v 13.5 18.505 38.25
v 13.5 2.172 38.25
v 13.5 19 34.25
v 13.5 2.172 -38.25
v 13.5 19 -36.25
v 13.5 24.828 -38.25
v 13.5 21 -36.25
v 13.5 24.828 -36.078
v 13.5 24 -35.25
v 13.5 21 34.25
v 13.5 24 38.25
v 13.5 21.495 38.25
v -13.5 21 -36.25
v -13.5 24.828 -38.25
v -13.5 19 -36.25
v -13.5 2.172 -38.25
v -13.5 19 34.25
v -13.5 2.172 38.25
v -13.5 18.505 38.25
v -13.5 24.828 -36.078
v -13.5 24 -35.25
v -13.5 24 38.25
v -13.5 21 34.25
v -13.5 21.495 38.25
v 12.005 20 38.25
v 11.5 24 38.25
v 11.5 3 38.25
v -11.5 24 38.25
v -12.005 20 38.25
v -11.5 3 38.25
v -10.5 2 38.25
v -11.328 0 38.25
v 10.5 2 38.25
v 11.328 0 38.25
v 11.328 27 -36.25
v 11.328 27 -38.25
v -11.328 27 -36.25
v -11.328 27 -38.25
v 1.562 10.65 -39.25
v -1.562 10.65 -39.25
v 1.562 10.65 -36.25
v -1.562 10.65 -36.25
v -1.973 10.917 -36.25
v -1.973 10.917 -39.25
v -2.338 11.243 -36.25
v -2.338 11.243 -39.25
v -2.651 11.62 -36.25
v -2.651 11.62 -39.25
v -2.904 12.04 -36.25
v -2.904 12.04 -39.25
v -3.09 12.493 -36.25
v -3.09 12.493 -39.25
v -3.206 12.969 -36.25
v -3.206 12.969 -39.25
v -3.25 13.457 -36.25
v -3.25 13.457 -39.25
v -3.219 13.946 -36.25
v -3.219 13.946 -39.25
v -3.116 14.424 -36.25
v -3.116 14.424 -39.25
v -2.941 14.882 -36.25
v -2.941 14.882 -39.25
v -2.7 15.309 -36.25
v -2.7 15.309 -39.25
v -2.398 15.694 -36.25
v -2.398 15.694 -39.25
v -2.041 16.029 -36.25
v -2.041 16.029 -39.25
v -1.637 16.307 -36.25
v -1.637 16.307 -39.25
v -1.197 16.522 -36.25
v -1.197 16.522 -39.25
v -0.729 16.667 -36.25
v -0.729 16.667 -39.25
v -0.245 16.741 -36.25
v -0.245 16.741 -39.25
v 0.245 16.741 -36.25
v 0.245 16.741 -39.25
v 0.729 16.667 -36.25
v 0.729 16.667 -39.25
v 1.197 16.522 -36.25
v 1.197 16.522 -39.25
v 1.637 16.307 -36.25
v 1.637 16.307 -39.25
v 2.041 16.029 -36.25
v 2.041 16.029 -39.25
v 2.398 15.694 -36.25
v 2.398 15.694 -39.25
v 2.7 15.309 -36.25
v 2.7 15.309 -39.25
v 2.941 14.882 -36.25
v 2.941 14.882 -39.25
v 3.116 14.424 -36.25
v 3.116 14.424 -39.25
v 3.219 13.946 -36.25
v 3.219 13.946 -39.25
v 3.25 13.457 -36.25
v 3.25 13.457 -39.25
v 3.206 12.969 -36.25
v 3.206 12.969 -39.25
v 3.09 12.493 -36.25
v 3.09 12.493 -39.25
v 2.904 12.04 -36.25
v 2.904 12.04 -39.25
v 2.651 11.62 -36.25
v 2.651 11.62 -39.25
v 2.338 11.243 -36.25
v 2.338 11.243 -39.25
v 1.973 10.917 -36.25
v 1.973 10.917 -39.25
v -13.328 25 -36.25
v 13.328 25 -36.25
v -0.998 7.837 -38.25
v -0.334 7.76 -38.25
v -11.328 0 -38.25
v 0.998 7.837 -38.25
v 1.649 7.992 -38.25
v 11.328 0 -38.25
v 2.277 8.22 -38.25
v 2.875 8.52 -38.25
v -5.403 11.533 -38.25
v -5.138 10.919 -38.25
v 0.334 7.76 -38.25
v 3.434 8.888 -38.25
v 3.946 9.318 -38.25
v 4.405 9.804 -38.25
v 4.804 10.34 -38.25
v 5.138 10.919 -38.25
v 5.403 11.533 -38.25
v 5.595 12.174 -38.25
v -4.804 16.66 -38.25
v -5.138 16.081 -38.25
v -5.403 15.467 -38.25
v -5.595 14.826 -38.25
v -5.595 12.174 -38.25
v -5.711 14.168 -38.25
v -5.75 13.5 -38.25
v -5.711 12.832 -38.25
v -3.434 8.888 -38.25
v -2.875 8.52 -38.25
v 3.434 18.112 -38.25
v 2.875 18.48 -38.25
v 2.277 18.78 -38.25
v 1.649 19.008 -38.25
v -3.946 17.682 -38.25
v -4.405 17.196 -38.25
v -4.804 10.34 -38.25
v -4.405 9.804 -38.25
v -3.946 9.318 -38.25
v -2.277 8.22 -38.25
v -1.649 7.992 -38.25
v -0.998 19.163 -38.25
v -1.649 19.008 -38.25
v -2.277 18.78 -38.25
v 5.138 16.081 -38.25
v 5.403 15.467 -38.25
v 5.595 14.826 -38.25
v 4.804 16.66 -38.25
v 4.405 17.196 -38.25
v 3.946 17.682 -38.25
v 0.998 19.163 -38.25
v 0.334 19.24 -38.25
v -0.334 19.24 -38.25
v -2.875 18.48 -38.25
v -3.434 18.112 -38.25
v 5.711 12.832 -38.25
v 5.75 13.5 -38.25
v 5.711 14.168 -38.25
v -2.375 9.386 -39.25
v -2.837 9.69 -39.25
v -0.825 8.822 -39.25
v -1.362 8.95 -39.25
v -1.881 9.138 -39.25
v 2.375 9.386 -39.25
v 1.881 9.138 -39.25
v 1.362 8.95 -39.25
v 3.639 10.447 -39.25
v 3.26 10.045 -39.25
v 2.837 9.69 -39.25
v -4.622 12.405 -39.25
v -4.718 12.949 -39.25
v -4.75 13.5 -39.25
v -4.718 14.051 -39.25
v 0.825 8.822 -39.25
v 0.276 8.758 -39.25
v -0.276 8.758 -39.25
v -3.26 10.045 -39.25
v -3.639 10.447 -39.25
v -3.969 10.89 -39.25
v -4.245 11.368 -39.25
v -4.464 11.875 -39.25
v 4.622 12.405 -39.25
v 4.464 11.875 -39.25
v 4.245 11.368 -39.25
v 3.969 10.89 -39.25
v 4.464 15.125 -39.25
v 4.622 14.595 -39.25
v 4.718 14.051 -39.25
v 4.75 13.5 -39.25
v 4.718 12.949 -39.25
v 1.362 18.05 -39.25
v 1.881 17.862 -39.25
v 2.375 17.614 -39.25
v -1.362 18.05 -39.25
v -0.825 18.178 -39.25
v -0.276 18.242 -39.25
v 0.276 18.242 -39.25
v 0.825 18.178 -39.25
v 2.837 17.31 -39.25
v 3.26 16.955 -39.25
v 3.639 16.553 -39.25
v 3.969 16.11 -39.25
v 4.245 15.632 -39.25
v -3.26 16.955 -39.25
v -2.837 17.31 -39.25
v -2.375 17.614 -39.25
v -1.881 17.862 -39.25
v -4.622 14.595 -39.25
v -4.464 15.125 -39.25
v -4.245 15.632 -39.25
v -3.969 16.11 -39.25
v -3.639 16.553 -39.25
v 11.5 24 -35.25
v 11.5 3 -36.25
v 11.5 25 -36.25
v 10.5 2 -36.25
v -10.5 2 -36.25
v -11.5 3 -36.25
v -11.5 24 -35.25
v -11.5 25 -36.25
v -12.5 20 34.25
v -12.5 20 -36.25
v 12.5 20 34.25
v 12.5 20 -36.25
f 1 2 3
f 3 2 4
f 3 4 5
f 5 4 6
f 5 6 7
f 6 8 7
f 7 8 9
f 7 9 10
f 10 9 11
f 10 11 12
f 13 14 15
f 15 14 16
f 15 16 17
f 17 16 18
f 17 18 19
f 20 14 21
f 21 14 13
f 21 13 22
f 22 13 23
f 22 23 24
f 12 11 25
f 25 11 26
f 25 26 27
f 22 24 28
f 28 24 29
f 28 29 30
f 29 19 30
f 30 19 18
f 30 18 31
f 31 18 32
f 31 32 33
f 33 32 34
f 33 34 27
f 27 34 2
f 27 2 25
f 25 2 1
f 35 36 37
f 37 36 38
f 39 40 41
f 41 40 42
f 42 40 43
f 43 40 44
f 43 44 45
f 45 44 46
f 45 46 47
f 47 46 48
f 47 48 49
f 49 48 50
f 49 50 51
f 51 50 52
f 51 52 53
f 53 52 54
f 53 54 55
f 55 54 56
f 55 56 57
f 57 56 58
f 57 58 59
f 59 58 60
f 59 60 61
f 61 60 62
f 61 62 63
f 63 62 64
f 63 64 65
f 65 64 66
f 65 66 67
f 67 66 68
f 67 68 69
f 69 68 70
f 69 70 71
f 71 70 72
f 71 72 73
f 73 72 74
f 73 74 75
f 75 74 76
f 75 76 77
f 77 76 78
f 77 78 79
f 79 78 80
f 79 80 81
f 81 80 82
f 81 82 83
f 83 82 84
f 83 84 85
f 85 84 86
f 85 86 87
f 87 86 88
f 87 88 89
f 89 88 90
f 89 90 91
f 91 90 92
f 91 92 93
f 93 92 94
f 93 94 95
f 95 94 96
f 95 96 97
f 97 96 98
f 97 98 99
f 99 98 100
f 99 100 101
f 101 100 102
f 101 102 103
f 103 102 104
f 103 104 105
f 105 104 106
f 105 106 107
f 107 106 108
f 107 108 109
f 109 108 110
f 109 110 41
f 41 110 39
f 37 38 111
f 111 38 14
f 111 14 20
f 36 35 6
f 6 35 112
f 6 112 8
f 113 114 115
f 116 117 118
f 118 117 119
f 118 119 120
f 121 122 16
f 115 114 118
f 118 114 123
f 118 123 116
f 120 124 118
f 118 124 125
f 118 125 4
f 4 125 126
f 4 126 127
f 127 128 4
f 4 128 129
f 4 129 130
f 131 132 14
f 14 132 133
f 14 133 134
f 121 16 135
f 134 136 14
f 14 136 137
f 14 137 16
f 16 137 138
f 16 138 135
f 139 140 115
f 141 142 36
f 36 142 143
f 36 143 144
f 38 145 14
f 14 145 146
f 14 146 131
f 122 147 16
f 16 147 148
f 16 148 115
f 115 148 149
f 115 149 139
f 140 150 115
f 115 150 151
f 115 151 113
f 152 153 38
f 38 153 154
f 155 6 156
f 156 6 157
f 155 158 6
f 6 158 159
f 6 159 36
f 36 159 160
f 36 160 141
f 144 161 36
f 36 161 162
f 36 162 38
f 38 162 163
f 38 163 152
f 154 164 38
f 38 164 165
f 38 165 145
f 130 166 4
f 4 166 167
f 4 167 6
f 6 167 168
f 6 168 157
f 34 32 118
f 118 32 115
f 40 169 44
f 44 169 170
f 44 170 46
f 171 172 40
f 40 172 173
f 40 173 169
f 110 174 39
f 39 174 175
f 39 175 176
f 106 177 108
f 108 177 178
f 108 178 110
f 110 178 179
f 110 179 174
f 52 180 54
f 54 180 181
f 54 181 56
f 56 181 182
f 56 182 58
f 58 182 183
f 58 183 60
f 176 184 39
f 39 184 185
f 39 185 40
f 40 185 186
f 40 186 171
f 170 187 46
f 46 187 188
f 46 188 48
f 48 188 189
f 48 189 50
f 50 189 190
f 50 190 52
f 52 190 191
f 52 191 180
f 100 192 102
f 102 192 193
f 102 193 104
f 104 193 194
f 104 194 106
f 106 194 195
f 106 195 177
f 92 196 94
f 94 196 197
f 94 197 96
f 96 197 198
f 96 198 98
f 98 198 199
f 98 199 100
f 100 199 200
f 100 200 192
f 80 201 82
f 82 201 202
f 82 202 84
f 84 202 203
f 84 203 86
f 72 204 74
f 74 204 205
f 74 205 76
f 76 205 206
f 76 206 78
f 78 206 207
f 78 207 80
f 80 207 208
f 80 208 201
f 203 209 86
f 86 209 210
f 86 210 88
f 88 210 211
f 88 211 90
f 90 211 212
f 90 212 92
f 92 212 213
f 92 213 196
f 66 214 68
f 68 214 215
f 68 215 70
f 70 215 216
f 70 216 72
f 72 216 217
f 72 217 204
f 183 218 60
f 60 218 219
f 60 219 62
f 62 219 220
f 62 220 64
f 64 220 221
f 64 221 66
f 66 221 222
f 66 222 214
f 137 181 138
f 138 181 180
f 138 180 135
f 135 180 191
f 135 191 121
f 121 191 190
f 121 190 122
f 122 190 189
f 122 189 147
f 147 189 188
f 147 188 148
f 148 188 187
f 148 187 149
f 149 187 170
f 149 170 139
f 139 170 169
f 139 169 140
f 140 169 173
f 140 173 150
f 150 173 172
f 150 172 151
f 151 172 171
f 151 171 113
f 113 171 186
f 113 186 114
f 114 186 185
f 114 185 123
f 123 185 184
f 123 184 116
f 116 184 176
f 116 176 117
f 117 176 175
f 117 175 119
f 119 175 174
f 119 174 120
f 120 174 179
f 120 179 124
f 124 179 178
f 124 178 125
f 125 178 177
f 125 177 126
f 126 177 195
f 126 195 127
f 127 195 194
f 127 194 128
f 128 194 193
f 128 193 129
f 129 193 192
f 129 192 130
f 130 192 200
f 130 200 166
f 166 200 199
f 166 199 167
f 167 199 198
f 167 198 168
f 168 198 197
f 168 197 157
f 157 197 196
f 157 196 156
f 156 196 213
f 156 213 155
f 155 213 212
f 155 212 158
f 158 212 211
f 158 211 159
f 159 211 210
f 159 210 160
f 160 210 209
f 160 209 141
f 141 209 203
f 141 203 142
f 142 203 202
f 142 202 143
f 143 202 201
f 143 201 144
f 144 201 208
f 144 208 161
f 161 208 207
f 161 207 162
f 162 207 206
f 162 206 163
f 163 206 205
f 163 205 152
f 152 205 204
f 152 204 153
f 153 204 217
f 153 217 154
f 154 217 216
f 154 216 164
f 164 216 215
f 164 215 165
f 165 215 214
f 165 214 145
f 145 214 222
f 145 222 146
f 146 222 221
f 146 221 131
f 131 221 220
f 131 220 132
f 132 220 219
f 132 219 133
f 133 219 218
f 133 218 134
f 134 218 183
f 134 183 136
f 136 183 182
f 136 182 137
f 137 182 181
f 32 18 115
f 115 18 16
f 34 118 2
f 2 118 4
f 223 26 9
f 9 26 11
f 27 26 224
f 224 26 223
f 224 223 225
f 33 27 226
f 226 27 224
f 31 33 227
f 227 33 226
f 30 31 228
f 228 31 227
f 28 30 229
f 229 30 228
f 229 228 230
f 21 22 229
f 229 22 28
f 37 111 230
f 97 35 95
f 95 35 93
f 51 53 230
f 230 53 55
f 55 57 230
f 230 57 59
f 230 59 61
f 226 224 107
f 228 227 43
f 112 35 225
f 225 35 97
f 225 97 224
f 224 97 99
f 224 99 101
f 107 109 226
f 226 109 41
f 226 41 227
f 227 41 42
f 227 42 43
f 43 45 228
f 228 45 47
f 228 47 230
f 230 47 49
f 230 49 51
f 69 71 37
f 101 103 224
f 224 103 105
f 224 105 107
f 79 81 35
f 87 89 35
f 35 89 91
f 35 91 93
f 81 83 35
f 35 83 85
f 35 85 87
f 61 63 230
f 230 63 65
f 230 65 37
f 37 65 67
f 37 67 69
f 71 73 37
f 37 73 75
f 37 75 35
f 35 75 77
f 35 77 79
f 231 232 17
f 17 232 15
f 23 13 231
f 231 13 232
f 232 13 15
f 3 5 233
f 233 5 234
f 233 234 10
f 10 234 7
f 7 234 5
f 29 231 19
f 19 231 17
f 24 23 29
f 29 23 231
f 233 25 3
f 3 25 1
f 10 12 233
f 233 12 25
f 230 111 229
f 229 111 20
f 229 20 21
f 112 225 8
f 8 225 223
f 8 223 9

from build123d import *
from OCP.BRepFilletAPI import BRepFilletAPI_MakeChamfer

# Parameters (mm, degrees)
SKETCH1_W           = 27
SKETCH1_H           = 76.5
BOSS_EXTRUDE1_DEPTH = 27
CUT_EXTRUDE3_DEPTH  = 84.171509545
CUT_EXTRUDE4_DEPTH  = 84.171509545
CUT_EXTRUDE5_DEPTH  = 74.5
CHAMFER1_SIZE       = 4
CHAMFER1_SIZE2      = 0.349954654
CHAMFER2_SIZE       = 4
CHAMFER2_SIZE2      = 0.349954654
CHAMFER3_SIZE       = 1


# Read off the part's stored shape, not the designer's step: Boss-Extrude2
with BuildPart() as part:
    # Sketch1 → Boss-Extrude1 (new body)
    with BuildSketch(Plane(origin=(0, 0, 0), x_dir=(1, 0, 0), z_dir=(0, 1, 0))):
        Rectangle(SKETCH1_W, SKETCH1_H)
    extrude(amount=BOSS_EXTRUDE1_DEPTH)

    # Boss-Extrude2 outline → Boss-Extrude2 (revolve)
    with BuildSketch(Plane.XZ.offset(-13.5)):
        Polygon((0, -38.25), (0, -39.25), (4.75, -39.25), (5.75, -38.25), align=None)
    revolve(axis=Axis((0, 13.5, 0), (0, 0, 1)))

    # Sketch6 → Cut-Extrude3 (cut, through all)
    with BuildSketch(Plane(origin=(0, 0, -39.25), x_dir=(-1, 0, 0), z_dir=(0, 0, -1))):
        with BuildLine():
            ThreePointArc((3.25, 13.5), (-1.656175974, 16.296351399), (-1.562049935, 10.65))
            Line((-1.562049935, 10.65), (1.562049935, 10.65))
            ThreePointArc((1.562049935, 10.65), (2.796351399, 11.843824026), (3.25, 13.5))
        make_face()
    extrude(amount=-CUT_EXTRUDE3_DEPTH, mode=Mode.SUBTRACT)

    # Sketch7 → Cut-Extrude4 (cut, through all)
    with BuildSketch(Plane.XY.offset(38.25)):
        Polygon((-11.328427125, 0), (-13.5, 2.171572875), (-13.5, 0), align=None)
        Polygon((-13.5, 27), (-13.5, 24.828427125), (-11.328427125, 27), align=None)
        Polygon((13.5, 27), (11.328427125, 27), (13.5, 24.828427125), align=None)
        Polygon((13.5, 2.171572875), (11.328427125, 0), (13.5, 0), align=None)
    extrude(amount=-CUT_EXTRUDE4_DEPTH, mode=Mode.SUBTRACT)

    # Sketch7<3> → Cut-Extrude5 (cut)
    with BuildSketch(Plane.XY.offset(38.25)):
        Polygon((-13.5, 2.171572875), (-11.328427125, 0), (-13.5, 0), align=None)
        Polygon((-11.5, 24), (-13.5, 24), (-13.5, 27), (13.5, 27), (13.5, 24), (11.5, 24), (11.5, 3), (10.5, 2), (-10.5, 2), (-11.5, 3), align=None)
        Polygon((11.328427125, 0), (13.5, 0), (13.5, 2.171572875), align=None)
        Polygon((-13.5, 21), (-13.5, 19), (-12.5, 20), align=None)
        Polygon((13.5, 19), (12.5, 20), (13.5, 21), align=None)
    extrude(amount=-CUT_EXTRUDE5_DEPTH, mode=Mode.SUBTRACT)

    # Chamfer1: one chamfer whose edges measure the first distance from different faces: ONE call of the kernel's chamfer builder (chamfer() names one face for all edges)
    chamfer1_edges_1 = [part.edges().sort_by_distance(p)[0] for p in [
        (-13, 19.5, 38.25),
    ]]
    chamfer1_side_1 = [part.faces().sort_by_distance(p)[0] for p in [
        (-13, 19.5, 1),
    ]]
    chamfer1_edges_2 = [part.edges().sort_by_distance(p)[0] for p in [
        (-13, 20.5, 38.25),
    ]]
    chamfer1_side_2 = [part.faces().sort_by_distance(p)[0] for p in [
        (-13, 20.5, 1),
    ]]
    chamfer1 = BRepFilletAPI_MakeChamfer(part.part.solid().wrapped)
    for e in chamfer1_edges_1:
        chamfer1.Add(CHAMFER1_SIZE, CHAMFER1_SIZE2, e.wrapped, chamfer1_side_1[0].wrapped)  # the first distance lies on this face
    for e in chamfer1_edges_2:
        chamfer1.Add(CHAMFER1_SIZE, CHAMFER1_SIZE2, e.wrapped, chamfer1_side_2[0].wrapped)  # the first distance lies on this face
    add(Compound.cast(chamfer1.Shape()), mode=Mode.REPLACE)

    # Chamfer2: one chamfer whose edges measure the first distance from different faces: ONE call of the kernel's chamfer builder (chamfer() names one face for all edges)
    chamfer2_edges_1 = [part.edges().sort_by_distance(p)[0] for p in [
        (13, 19.5, 38.25),
    ]]
    chamfer2_side_1 = [part.faces().sort_by_distance(p)[0] for p in [
        (13, 19.5, 1),
    ]]
    chamfer2_edges_2 = [part.edges().sort_by_distance(p)[0] for p in [
        (13, 20.5, 38.25),
    ]]
    chamfer2_side_2 = [part.faces().sort_by_distance(p)[0] for p in [
        (13, 20.5, 1),
    ]]
    chamfer2 = BRepFilletAPI_MakeChamfer(part.part.solid().wrapped)
    for e in chamfer2_edges_1:
        chamfer2.Add(CHAMFER2_SIZE, CHAMFER2_SIZE2, e.wrapped, chamfer2_side_1[0].wrapped)  # the first distance lies on this face
    for e in chamfer2_edges_2:
        chamfer2.Add(CHAMFER2_SIZE, CHAMFER2_SIZE2, e.wrapped, chamfer2_side_2[0].wrapped)  # the first distance lies on this face
    add(Compound.cast(chamfer2.Shape()), mode=Mode.REPLACE)

    # Chamfer3
    chamfer3_edges = [part.edges().sort_by_distance(p)[0] for p in [
        (12.5, 24, -36.25),
        (-12.5, 24, -36.25),
    ]]
    chamfer(chamfer3_edges, length=CHAMFER3_SIZE)


solid = part.part
